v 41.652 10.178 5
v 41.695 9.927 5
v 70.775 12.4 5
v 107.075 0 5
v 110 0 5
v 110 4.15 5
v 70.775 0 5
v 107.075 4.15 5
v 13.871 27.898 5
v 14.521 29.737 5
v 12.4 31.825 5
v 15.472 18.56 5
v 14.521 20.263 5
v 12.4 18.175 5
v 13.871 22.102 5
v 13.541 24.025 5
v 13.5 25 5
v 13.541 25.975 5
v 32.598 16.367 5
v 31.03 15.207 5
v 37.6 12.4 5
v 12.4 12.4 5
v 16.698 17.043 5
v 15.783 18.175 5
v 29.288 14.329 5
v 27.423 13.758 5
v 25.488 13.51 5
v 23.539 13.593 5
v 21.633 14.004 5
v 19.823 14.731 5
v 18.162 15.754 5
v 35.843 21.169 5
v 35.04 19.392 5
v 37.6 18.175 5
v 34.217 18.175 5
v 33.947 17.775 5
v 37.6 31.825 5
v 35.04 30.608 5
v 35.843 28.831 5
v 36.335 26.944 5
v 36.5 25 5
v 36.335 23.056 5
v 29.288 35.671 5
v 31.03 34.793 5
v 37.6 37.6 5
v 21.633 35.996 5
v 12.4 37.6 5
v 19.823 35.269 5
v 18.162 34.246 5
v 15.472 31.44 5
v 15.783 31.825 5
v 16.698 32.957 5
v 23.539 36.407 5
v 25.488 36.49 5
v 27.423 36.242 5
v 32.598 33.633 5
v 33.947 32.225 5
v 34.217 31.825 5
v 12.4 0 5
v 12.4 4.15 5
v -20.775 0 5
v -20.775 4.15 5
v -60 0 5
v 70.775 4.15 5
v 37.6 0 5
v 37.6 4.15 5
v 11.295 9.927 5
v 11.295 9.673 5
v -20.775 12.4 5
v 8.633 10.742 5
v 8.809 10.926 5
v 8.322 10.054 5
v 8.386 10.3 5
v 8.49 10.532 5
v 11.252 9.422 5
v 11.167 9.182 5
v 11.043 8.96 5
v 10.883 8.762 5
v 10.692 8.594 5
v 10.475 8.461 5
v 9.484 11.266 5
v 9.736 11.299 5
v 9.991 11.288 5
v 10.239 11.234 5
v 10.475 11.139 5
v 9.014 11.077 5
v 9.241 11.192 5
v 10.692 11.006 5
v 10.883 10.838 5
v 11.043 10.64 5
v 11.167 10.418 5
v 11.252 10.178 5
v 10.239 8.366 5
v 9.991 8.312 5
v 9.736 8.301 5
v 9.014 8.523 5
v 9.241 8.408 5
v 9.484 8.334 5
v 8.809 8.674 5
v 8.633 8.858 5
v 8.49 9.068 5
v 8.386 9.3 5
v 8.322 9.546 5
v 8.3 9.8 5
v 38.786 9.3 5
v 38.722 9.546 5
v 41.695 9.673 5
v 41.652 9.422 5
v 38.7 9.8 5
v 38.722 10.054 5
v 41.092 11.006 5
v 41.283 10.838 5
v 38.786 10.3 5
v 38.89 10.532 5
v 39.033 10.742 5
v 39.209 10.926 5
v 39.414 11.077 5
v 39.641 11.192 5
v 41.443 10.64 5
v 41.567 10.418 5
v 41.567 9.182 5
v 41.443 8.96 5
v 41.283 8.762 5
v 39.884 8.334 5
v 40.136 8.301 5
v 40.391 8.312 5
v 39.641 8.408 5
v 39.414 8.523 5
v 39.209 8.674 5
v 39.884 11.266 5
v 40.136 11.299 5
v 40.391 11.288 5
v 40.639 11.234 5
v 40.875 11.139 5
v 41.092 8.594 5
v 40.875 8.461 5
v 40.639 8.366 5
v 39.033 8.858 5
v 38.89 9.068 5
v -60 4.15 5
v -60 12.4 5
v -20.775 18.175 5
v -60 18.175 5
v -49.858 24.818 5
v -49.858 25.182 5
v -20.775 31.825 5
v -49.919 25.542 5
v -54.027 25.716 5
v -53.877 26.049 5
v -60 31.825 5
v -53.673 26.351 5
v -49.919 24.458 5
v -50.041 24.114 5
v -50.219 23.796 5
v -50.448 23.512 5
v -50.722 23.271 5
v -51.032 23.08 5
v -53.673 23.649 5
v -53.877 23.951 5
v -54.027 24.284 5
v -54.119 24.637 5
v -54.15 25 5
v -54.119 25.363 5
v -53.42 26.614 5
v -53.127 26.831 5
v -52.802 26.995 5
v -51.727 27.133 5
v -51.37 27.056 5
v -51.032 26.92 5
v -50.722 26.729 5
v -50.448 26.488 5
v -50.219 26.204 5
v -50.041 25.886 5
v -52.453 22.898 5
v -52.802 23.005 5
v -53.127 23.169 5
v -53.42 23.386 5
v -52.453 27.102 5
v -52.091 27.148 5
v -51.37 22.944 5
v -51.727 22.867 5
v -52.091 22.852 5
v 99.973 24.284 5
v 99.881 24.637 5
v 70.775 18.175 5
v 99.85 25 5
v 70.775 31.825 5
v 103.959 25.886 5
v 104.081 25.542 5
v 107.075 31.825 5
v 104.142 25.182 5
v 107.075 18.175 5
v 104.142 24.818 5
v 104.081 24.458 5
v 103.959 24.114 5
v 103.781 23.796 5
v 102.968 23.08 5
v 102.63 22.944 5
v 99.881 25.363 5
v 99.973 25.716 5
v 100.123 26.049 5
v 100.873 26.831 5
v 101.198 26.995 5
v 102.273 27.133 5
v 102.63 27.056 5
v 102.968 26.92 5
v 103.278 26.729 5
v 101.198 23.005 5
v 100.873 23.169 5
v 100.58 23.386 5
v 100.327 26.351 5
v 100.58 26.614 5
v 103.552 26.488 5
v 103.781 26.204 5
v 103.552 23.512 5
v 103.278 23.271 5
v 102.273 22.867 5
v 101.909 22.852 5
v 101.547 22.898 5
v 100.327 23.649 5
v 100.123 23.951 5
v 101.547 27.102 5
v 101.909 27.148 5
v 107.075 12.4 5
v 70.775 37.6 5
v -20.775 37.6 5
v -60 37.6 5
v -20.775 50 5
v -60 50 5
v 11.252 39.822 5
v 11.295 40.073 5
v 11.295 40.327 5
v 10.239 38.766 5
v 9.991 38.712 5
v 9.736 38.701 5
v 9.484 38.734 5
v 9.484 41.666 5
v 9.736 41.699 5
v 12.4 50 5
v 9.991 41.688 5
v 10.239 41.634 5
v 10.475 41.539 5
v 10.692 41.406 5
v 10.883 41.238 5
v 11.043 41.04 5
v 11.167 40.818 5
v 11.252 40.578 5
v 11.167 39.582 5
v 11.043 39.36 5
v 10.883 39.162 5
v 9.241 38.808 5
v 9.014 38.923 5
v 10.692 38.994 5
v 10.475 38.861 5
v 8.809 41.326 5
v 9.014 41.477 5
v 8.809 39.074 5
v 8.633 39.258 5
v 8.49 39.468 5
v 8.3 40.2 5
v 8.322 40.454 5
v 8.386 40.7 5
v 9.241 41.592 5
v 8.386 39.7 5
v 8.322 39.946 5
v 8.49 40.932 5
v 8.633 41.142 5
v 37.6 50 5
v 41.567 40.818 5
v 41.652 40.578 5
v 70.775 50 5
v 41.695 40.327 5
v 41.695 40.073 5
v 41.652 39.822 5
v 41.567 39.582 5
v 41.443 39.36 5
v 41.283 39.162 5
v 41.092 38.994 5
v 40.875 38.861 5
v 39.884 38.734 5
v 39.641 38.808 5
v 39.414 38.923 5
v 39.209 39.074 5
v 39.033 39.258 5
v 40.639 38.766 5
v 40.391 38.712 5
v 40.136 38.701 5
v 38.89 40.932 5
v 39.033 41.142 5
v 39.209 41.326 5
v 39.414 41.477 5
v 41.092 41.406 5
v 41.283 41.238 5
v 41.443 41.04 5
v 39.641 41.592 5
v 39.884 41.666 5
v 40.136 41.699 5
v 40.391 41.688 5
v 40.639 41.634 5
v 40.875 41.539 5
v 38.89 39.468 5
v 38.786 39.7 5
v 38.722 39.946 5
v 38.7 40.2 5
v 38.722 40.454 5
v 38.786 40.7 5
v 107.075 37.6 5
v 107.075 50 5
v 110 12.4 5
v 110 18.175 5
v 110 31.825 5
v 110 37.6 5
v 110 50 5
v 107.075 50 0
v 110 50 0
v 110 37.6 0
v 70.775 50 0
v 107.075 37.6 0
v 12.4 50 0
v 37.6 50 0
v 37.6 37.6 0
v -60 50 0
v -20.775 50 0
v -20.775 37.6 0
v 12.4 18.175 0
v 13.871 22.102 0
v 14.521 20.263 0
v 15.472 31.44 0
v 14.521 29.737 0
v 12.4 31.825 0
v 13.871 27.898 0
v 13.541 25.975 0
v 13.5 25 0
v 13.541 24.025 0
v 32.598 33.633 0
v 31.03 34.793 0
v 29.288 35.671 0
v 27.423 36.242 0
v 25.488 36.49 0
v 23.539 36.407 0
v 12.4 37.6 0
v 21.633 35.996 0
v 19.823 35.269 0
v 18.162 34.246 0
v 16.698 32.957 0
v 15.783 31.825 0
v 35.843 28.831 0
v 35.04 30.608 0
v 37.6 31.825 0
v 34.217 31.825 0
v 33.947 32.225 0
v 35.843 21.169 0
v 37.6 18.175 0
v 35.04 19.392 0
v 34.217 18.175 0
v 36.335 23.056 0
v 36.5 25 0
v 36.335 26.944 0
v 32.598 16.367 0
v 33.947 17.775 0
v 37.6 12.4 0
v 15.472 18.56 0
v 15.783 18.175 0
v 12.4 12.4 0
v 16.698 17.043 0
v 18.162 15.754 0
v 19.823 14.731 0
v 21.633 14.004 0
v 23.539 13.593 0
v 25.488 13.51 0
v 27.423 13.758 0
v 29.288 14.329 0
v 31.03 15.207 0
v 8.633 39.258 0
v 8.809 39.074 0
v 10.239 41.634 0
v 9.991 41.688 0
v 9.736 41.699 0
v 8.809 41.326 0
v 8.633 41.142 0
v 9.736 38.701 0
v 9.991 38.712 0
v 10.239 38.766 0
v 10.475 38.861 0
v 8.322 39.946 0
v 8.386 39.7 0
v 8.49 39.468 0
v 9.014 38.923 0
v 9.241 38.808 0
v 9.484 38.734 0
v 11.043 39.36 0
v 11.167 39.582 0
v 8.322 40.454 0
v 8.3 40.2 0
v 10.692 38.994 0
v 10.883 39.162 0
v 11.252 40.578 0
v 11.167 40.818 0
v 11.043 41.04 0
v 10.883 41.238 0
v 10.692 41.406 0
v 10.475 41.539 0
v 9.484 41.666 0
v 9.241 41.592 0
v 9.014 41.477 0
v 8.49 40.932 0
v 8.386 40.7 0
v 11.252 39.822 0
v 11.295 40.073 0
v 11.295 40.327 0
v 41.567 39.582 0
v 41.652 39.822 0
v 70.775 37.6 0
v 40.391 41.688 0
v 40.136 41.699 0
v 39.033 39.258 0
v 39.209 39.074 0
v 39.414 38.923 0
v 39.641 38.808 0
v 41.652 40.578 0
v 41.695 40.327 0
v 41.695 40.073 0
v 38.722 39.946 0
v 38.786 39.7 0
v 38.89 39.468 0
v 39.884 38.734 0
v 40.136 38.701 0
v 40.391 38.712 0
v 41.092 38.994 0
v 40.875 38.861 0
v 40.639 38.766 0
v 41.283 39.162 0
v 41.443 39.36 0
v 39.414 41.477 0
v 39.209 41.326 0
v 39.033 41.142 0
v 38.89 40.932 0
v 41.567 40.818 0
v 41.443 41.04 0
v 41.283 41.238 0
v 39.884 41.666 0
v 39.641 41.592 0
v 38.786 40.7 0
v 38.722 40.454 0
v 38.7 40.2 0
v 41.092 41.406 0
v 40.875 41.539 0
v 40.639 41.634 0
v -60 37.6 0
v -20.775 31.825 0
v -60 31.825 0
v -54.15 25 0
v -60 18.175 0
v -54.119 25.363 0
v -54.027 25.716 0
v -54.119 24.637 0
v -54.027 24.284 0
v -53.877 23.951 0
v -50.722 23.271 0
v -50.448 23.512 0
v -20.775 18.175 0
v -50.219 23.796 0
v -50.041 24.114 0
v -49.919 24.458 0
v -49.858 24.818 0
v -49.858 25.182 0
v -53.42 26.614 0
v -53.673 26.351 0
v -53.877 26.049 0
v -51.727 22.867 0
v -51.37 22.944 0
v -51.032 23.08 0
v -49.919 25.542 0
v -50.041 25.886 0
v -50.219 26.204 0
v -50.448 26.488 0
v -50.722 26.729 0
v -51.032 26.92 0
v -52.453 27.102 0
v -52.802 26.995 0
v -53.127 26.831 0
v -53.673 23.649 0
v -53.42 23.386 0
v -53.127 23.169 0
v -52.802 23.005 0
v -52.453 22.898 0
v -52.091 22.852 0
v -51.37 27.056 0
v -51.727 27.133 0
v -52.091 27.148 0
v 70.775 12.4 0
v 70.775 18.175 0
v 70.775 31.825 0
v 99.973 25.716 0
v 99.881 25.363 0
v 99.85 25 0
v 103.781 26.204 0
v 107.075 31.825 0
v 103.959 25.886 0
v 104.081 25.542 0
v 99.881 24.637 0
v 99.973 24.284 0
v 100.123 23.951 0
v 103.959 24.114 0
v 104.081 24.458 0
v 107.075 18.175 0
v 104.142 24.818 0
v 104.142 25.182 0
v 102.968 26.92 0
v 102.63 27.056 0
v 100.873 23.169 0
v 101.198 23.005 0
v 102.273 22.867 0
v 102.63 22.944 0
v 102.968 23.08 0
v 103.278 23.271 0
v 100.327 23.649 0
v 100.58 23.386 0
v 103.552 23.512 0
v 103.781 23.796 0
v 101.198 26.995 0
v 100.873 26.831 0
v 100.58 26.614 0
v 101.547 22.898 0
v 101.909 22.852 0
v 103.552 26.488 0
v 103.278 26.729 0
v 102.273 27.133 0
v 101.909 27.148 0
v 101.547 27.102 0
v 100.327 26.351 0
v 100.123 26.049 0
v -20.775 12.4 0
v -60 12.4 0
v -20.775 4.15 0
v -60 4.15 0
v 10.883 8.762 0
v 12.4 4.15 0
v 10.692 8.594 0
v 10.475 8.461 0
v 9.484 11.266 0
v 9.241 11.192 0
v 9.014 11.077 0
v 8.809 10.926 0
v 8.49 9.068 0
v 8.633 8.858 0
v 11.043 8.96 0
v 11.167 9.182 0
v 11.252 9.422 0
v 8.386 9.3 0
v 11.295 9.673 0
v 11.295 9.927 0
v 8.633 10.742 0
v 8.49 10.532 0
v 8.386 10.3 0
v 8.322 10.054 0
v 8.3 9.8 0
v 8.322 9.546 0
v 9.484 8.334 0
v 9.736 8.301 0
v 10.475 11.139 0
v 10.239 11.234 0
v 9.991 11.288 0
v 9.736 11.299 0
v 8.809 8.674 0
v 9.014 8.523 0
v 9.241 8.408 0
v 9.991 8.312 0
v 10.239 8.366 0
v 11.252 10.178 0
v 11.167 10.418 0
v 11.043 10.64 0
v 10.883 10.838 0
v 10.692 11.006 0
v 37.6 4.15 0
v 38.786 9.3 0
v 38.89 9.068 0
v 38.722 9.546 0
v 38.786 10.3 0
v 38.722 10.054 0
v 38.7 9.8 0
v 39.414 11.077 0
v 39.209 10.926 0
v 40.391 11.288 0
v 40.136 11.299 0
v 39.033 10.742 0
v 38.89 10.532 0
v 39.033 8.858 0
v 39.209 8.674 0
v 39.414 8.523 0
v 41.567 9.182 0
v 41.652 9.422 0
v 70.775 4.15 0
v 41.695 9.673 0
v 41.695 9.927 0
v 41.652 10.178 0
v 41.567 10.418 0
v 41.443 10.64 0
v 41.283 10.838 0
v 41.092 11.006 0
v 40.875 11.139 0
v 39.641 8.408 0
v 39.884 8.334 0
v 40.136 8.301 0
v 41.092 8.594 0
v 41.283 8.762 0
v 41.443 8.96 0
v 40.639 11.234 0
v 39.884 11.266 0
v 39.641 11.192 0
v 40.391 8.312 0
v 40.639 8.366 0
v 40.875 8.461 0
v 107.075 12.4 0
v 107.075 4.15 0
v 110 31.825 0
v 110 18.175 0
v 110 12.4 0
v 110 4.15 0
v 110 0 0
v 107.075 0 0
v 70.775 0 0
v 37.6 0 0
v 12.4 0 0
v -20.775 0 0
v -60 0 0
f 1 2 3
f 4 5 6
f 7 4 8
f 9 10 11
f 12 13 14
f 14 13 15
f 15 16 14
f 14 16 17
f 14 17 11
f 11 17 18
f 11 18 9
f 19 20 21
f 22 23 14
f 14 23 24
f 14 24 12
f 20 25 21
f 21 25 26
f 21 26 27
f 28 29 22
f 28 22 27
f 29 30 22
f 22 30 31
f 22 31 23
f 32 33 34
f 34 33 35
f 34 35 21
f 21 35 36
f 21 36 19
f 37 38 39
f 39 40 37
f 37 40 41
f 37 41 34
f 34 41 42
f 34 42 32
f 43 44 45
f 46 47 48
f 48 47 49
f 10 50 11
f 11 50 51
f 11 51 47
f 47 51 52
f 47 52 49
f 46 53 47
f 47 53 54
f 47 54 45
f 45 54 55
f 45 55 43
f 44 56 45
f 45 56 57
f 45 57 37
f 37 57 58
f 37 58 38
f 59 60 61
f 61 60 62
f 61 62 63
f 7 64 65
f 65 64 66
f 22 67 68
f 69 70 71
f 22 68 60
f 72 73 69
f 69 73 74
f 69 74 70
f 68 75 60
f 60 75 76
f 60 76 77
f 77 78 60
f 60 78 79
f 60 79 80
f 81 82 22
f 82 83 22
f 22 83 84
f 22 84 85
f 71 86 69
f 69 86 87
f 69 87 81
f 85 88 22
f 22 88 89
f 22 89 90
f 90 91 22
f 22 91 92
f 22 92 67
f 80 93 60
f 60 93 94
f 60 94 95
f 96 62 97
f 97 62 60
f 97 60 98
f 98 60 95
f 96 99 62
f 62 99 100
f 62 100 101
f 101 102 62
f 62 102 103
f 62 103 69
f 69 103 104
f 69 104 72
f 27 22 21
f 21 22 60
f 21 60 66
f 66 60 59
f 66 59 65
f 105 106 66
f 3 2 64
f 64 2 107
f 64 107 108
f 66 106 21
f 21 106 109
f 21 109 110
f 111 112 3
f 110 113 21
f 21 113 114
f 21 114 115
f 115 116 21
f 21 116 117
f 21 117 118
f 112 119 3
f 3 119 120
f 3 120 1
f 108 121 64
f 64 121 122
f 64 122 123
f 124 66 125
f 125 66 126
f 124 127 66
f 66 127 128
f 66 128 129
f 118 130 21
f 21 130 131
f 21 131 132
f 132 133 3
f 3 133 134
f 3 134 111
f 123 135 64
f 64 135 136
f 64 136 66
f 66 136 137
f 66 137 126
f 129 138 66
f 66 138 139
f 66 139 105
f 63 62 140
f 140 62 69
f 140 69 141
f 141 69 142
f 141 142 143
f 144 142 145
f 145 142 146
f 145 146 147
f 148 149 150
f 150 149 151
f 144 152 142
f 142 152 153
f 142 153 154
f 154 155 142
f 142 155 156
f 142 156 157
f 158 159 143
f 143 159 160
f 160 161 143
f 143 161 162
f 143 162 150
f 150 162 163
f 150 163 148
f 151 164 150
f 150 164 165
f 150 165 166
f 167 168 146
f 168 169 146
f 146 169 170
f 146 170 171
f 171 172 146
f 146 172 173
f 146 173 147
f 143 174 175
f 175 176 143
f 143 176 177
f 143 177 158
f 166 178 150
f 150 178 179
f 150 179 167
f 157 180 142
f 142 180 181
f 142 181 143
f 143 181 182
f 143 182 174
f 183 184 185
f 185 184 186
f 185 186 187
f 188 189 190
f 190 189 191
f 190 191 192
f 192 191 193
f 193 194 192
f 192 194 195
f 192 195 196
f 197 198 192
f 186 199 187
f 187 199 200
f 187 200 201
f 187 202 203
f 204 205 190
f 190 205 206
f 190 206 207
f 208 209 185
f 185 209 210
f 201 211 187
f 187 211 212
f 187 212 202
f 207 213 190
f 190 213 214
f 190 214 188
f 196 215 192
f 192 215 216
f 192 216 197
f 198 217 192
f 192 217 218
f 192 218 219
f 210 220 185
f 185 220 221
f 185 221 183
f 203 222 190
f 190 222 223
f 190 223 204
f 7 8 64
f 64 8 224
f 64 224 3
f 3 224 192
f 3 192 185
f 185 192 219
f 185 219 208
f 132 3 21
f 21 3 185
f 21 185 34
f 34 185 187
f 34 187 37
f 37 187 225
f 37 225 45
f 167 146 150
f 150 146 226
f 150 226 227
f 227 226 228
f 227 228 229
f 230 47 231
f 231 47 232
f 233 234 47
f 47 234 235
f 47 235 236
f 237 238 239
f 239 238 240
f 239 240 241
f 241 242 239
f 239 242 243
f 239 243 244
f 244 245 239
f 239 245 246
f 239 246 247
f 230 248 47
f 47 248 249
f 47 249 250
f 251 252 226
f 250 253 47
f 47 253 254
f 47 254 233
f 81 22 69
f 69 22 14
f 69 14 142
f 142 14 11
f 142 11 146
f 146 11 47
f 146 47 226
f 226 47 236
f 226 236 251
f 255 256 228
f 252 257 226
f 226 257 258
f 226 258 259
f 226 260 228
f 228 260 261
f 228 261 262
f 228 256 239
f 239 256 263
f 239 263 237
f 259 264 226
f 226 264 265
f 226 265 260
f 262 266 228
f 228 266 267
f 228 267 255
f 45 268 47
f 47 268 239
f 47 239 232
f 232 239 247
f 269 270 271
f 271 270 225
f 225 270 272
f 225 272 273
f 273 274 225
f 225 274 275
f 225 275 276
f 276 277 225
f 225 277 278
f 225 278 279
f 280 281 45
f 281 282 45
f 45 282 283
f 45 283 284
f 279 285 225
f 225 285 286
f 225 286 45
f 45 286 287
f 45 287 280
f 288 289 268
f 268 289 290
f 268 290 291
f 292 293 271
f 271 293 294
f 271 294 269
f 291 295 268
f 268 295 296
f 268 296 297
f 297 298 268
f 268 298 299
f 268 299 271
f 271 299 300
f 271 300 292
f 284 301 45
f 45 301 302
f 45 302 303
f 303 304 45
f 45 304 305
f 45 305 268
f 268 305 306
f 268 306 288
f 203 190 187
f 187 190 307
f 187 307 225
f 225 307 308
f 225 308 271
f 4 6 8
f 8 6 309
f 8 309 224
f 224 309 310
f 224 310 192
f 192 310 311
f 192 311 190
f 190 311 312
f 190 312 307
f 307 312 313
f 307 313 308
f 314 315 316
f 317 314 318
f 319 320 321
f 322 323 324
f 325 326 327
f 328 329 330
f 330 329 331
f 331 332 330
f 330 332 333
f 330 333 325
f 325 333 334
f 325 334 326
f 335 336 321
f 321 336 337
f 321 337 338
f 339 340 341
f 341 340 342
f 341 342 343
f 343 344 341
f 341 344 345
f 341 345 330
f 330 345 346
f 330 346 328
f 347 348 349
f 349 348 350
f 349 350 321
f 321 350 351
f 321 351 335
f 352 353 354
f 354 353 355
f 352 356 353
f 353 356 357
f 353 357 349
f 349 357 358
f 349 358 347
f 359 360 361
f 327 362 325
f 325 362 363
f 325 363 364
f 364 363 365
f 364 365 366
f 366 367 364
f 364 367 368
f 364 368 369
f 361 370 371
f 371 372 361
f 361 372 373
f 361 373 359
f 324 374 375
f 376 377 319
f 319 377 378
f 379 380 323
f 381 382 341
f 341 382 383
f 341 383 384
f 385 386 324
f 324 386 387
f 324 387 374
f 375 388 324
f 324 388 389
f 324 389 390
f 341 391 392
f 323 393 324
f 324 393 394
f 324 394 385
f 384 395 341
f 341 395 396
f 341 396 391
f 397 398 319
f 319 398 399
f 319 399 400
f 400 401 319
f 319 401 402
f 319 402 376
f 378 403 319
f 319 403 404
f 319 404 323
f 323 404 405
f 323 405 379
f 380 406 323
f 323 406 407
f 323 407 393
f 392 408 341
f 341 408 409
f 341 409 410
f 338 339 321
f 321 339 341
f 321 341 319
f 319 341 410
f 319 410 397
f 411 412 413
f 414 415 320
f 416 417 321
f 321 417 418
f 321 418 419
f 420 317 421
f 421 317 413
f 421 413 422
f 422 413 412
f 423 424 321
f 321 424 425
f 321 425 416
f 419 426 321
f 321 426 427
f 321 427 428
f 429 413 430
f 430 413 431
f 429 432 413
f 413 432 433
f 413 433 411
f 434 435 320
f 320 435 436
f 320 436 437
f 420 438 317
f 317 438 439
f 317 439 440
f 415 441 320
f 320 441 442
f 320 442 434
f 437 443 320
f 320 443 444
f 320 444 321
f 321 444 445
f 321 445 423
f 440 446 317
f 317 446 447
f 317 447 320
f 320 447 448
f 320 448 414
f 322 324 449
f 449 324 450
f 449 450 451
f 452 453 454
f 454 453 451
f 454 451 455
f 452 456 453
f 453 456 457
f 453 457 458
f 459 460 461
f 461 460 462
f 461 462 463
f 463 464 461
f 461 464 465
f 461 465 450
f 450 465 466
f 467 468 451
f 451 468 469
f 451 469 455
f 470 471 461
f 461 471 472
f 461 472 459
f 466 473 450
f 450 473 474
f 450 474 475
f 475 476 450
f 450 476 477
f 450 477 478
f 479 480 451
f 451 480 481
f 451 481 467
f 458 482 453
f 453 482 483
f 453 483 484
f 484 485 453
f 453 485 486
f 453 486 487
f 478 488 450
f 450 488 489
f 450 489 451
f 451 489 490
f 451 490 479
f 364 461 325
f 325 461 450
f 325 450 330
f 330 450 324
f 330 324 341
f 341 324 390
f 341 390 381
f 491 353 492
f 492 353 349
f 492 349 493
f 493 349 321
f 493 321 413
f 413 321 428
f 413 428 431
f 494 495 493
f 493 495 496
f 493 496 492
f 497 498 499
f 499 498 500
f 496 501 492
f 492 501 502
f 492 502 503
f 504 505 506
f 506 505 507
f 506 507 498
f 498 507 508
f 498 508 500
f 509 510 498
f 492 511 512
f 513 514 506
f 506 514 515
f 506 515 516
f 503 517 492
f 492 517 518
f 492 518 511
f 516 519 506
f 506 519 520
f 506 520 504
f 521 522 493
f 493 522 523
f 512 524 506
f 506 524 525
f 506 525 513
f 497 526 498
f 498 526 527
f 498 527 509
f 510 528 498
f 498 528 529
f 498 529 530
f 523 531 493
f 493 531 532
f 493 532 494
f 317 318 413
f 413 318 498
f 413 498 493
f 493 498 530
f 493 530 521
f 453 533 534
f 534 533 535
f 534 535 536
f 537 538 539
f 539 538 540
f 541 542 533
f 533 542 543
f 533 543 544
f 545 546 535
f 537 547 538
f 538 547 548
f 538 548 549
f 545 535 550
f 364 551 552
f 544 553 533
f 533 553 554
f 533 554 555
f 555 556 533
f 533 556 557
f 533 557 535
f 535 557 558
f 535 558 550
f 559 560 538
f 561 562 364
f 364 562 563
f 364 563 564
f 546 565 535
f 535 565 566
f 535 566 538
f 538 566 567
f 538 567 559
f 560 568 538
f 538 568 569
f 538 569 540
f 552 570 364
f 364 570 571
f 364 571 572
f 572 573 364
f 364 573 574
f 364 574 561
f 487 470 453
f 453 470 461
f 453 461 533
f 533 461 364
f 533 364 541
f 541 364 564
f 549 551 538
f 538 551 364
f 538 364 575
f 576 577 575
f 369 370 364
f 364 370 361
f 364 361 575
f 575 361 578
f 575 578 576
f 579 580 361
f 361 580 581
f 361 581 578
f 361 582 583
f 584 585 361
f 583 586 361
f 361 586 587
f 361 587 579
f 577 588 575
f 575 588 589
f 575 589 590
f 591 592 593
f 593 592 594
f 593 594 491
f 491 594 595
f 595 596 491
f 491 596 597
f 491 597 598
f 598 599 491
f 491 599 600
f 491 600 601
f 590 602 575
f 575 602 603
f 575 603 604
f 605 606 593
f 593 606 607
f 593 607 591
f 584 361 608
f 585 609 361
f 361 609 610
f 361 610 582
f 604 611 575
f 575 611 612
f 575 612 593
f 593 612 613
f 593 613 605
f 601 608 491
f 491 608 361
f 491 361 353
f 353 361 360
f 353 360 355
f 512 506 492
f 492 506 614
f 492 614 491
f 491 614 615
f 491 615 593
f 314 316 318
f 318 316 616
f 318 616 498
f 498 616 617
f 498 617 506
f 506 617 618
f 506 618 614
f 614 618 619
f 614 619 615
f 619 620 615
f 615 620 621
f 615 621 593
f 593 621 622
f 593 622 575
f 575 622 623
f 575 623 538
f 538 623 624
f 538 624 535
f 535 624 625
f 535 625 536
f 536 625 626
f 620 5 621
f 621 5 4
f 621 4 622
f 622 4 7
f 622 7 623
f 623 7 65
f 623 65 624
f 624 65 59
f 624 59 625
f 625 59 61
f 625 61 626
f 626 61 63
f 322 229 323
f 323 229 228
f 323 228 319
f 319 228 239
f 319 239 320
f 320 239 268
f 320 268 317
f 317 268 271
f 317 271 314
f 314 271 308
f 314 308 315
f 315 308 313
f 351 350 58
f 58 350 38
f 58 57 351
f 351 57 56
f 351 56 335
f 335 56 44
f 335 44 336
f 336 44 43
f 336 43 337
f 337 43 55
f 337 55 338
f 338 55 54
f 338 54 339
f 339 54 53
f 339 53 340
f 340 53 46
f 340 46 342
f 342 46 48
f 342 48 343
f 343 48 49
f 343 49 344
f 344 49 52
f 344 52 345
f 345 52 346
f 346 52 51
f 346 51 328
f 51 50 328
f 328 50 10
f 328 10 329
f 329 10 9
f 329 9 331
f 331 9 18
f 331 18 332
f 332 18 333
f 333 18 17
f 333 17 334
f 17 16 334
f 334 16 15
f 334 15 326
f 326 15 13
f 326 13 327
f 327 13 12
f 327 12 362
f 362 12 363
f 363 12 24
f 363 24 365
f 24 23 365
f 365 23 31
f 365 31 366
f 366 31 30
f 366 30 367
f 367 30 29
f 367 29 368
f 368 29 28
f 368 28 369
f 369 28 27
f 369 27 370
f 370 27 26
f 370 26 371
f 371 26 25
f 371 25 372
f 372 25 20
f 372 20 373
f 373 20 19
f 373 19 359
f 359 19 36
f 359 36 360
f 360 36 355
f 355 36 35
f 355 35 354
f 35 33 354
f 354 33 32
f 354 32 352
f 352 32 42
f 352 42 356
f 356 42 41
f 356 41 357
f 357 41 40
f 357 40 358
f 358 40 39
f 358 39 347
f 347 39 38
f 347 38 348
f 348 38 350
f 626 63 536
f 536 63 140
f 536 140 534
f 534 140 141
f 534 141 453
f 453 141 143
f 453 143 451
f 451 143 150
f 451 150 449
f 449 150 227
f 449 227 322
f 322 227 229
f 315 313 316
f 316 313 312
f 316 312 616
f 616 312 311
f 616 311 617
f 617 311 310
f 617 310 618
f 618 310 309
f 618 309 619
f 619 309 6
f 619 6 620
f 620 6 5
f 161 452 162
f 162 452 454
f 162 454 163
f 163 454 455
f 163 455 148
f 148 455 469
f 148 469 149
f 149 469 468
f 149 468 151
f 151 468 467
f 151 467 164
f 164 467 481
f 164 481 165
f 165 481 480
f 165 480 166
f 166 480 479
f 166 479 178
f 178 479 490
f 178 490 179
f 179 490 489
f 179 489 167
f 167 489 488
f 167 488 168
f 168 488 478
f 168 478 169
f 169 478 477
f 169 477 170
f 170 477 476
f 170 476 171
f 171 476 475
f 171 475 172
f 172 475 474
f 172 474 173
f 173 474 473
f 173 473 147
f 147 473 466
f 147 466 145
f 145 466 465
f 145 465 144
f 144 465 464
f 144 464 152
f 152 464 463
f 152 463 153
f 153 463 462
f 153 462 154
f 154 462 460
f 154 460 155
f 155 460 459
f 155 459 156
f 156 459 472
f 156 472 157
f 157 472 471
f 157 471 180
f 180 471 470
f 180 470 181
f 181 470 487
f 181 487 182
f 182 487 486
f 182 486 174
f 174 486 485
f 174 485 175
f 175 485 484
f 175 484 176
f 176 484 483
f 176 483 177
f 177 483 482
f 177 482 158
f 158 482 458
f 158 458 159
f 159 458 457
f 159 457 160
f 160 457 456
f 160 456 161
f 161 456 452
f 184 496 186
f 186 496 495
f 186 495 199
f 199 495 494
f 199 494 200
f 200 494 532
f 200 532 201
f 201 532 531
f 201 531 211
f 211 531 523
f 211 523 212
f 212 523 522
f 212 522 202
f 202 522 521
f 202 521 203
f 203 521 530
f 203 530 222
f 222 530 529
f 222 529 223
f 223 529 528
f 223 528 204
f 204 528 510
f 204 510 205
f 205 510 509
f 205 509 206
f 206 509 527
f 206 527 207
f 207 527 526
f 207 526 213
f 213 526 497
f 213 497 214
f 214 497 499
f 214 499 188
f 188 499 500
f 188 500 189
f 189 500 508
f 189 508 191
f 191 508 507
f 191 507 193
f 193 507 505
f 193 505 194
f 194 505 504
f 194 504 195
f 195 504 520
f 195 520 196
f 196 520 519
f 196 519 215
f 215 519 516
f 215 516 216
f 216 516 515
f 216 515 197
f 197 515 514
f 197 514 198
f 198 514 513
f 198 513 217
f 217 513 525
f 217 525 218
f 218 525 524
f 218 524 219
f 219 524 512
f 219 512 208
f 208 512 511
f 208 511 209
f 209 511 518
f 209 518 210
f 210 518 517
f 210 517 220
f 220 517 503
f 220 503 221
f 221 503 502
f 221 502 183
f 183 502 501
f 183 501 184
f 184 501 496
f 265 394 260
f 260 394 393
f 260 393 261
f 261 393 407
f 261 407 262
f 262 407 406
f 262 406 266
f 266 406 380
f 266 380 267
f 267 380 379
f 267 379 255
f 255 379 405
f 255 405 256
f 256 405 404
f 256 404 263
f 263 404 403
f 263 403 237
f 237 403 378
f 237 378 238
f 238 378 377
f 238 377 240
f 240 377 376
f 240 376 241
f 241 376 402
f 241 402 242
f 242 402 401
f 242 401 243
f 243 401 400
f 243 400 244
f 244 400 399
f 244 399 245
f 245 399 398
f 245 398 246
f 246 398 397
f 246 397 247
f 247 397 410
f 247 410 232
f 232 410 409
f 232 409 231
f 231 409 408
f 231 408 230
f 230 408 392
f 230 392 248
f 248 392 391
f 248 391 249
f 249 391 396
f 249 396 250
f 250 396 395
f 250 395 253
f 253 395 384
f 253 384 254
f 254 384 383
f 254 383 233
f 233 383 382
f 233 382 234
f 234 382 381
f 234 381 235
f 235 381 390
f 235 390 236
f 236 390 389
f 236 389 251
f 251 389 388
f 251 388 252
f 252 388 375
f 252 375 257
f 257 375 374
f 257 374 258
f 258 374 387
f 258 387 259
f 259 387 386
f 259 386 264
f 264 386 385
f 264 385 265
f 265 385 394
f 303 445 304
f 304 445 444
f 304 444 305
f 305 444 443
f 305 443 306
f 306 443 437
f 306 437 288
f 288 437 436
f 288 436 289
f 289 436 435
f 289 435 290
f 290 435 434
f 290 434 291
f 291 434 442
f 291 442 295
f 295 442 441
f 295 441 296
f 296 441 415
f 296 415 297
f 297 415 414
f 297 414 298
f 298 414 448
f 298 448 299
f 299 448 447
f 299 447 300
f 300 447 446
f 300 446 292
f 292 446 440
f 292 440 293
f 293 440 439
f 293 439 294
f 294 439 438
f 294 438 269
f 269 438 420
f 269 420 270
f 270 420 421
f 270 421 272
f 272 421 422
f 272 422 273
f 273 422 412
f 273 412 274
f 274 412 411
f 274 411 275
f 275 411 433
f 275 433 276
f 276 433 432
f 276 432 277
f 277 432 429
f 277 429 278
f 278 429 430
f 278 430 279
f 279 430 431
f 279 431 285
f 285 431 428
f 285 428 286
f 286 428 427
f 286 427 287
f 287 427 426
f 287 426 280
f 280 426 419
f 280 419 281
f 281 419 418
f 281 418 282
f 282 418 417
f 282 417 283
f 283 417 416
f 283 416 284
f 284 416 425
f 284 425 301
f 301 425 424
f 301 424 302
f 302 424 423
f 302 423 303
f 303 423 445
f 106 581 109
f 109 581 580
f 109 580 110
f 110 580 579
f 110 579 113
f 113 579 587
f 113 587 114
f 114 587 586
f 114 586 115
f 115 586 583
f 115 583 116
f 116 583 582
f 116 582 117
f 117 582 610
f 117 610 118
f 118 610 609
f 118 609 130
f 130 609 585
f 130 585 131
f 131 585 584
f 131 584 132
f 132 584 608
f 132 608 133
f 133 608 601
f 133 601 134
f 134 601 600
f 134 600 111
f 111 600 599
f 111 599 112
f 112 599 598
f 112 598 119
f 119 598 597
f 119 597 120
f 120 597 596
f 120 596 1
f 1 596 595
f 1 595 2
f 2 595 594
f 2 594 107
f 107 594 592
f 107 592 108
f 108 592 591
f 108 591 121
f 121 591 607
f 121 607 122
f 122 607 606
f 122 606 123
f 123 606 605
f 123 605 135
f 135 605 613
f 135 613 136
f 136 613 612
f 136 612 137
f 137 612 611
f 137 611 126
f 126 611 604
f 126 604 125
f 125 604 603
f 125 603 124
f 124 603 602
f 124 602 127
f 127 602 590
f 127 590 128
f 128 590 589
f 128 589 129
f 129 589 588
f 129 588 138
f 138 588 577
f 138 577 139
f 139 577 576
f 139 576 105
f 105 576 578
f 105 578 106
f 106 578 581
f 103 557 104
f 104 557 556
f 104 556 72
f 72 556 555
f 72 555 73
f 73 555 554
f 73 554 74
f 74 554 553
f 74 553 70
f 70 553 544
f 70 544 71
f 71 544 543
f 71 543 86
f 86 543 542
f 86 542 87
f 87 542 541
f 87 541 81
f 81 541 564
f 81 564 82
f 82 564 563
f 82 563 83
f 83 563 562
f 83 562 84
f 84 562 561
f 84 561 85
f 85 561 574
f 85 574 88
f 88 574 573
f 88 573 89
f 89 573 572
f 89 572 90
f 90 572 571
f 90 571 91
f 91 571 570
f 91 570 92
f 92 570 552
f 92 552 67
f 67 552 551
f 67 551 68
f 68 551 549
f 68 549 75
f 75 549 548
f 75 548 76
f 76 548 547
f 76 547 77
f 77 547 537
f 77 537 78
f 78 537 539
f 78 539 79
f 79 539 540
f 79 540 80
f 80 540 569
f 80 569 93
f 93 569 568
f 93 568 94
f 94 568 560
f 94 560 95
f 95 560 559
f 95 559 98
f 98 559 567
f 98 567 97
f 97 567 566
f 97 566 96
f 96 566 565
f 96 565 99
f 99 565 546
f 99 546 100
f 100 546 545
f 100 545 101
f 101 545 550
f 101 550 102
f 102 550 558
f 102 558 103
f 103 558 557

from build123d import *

# Parameters (mm, degrees)
ESBO_O1_W                  = 50
ESBO_O1_H                  = 50
RESSALTO_EXTRUS_O1_DEPTH   = 5
ESBO_O2_R                  = 11.5
CORTE_EXTRUS_O1_DEPTH      = 8
CORTE_EXTRUS_O1_DEPTH_BACK = 14
ESBO_O3_W                  = 60
ESBO_O3_H                  = 50
RESSALTO_EXTRUS_O2_DEPTH   = 5
ESBO_O4_R                  = 2.15
ESBO_O4_R_2                = 1.5
CORTE_EXTRUS_O2_DEPTH      = 19
CORTE_EXTRUS_O2_DEPTH_BACK = 12


with BuildPart() as part:
    # Esboço1 → Ressalto-extrusão1 (new body)
    with BuildSketch(Plane.XY):
        with Locations((25, 25)):
            Rectangle(ESBO_O1_W, ESBO_O1_H)
    extrude(amount=RESSALTO_EXTRUS_O1_DEPTH)

    # Esboço2 → Corte-extrusão1 (cut, two sides)
    with BuildSketch(Plane.XY) as corte_extrus_o1_sk:
        with Locations((25, 25)):
            Circle(ESBO_O2_R)
    extrude(amount=CORTE_EXTRUS_O1_DEPTH, mode=Mode.SUBTRACT)
    extrude(corte_extrus_o1_sk.sketch, amount=-CORTE_EXTRUS_O1_DEPTH_BACK, mode=Mode.SUBTRACT)

    # Esboço3 → Ressalto-extrusão2 (add)
    with BuildSketch(Plane.XY):
        with Locations((-30, 25)):
            Rectangle(ESBO_O3_W, ESBO_O3_H)
        with Locations((80, 25)):
            Rectangle(ESBO_O3_W, ESBO_O3_H)
    extrude(amount=RESSALTO_EXTRUS_O2_DEPTH)

    # Esboço4 → Corte-extrusão2 (cut, two sides)
    with BuildSketch(Plane.XY) as corte_extrus_o2_sk:
        with Locations((-52, 25)):
            Circle(ESBO_O4_R)
        with Locations((102, 25)):
            Circle(ESBO_O4_R)
        with Locations((9.8, 40.2)):
            Circle(ESBO_O4_R_2)
        with Locations((40.2, 40.2)):
            Circle(ESBO_O4_R_2)
        with Locations((40.2, 9.8)):
            Circle(ESBO_O4_R_2)
        with Locations((9.8, 9.8)):
            Circle(ESBO_O4_R_2)
    extrude(amount=CORTE_EXTRUS_O2_DEPTH, mode=Mode.SUBTRACT)
    extrude(corte_extrus_o2_sk.sketch, amount=-CORTE_EXTRUS_O2_DEPTH_BACK, mode=Mode.SUBTRACT)


solid = part.part
